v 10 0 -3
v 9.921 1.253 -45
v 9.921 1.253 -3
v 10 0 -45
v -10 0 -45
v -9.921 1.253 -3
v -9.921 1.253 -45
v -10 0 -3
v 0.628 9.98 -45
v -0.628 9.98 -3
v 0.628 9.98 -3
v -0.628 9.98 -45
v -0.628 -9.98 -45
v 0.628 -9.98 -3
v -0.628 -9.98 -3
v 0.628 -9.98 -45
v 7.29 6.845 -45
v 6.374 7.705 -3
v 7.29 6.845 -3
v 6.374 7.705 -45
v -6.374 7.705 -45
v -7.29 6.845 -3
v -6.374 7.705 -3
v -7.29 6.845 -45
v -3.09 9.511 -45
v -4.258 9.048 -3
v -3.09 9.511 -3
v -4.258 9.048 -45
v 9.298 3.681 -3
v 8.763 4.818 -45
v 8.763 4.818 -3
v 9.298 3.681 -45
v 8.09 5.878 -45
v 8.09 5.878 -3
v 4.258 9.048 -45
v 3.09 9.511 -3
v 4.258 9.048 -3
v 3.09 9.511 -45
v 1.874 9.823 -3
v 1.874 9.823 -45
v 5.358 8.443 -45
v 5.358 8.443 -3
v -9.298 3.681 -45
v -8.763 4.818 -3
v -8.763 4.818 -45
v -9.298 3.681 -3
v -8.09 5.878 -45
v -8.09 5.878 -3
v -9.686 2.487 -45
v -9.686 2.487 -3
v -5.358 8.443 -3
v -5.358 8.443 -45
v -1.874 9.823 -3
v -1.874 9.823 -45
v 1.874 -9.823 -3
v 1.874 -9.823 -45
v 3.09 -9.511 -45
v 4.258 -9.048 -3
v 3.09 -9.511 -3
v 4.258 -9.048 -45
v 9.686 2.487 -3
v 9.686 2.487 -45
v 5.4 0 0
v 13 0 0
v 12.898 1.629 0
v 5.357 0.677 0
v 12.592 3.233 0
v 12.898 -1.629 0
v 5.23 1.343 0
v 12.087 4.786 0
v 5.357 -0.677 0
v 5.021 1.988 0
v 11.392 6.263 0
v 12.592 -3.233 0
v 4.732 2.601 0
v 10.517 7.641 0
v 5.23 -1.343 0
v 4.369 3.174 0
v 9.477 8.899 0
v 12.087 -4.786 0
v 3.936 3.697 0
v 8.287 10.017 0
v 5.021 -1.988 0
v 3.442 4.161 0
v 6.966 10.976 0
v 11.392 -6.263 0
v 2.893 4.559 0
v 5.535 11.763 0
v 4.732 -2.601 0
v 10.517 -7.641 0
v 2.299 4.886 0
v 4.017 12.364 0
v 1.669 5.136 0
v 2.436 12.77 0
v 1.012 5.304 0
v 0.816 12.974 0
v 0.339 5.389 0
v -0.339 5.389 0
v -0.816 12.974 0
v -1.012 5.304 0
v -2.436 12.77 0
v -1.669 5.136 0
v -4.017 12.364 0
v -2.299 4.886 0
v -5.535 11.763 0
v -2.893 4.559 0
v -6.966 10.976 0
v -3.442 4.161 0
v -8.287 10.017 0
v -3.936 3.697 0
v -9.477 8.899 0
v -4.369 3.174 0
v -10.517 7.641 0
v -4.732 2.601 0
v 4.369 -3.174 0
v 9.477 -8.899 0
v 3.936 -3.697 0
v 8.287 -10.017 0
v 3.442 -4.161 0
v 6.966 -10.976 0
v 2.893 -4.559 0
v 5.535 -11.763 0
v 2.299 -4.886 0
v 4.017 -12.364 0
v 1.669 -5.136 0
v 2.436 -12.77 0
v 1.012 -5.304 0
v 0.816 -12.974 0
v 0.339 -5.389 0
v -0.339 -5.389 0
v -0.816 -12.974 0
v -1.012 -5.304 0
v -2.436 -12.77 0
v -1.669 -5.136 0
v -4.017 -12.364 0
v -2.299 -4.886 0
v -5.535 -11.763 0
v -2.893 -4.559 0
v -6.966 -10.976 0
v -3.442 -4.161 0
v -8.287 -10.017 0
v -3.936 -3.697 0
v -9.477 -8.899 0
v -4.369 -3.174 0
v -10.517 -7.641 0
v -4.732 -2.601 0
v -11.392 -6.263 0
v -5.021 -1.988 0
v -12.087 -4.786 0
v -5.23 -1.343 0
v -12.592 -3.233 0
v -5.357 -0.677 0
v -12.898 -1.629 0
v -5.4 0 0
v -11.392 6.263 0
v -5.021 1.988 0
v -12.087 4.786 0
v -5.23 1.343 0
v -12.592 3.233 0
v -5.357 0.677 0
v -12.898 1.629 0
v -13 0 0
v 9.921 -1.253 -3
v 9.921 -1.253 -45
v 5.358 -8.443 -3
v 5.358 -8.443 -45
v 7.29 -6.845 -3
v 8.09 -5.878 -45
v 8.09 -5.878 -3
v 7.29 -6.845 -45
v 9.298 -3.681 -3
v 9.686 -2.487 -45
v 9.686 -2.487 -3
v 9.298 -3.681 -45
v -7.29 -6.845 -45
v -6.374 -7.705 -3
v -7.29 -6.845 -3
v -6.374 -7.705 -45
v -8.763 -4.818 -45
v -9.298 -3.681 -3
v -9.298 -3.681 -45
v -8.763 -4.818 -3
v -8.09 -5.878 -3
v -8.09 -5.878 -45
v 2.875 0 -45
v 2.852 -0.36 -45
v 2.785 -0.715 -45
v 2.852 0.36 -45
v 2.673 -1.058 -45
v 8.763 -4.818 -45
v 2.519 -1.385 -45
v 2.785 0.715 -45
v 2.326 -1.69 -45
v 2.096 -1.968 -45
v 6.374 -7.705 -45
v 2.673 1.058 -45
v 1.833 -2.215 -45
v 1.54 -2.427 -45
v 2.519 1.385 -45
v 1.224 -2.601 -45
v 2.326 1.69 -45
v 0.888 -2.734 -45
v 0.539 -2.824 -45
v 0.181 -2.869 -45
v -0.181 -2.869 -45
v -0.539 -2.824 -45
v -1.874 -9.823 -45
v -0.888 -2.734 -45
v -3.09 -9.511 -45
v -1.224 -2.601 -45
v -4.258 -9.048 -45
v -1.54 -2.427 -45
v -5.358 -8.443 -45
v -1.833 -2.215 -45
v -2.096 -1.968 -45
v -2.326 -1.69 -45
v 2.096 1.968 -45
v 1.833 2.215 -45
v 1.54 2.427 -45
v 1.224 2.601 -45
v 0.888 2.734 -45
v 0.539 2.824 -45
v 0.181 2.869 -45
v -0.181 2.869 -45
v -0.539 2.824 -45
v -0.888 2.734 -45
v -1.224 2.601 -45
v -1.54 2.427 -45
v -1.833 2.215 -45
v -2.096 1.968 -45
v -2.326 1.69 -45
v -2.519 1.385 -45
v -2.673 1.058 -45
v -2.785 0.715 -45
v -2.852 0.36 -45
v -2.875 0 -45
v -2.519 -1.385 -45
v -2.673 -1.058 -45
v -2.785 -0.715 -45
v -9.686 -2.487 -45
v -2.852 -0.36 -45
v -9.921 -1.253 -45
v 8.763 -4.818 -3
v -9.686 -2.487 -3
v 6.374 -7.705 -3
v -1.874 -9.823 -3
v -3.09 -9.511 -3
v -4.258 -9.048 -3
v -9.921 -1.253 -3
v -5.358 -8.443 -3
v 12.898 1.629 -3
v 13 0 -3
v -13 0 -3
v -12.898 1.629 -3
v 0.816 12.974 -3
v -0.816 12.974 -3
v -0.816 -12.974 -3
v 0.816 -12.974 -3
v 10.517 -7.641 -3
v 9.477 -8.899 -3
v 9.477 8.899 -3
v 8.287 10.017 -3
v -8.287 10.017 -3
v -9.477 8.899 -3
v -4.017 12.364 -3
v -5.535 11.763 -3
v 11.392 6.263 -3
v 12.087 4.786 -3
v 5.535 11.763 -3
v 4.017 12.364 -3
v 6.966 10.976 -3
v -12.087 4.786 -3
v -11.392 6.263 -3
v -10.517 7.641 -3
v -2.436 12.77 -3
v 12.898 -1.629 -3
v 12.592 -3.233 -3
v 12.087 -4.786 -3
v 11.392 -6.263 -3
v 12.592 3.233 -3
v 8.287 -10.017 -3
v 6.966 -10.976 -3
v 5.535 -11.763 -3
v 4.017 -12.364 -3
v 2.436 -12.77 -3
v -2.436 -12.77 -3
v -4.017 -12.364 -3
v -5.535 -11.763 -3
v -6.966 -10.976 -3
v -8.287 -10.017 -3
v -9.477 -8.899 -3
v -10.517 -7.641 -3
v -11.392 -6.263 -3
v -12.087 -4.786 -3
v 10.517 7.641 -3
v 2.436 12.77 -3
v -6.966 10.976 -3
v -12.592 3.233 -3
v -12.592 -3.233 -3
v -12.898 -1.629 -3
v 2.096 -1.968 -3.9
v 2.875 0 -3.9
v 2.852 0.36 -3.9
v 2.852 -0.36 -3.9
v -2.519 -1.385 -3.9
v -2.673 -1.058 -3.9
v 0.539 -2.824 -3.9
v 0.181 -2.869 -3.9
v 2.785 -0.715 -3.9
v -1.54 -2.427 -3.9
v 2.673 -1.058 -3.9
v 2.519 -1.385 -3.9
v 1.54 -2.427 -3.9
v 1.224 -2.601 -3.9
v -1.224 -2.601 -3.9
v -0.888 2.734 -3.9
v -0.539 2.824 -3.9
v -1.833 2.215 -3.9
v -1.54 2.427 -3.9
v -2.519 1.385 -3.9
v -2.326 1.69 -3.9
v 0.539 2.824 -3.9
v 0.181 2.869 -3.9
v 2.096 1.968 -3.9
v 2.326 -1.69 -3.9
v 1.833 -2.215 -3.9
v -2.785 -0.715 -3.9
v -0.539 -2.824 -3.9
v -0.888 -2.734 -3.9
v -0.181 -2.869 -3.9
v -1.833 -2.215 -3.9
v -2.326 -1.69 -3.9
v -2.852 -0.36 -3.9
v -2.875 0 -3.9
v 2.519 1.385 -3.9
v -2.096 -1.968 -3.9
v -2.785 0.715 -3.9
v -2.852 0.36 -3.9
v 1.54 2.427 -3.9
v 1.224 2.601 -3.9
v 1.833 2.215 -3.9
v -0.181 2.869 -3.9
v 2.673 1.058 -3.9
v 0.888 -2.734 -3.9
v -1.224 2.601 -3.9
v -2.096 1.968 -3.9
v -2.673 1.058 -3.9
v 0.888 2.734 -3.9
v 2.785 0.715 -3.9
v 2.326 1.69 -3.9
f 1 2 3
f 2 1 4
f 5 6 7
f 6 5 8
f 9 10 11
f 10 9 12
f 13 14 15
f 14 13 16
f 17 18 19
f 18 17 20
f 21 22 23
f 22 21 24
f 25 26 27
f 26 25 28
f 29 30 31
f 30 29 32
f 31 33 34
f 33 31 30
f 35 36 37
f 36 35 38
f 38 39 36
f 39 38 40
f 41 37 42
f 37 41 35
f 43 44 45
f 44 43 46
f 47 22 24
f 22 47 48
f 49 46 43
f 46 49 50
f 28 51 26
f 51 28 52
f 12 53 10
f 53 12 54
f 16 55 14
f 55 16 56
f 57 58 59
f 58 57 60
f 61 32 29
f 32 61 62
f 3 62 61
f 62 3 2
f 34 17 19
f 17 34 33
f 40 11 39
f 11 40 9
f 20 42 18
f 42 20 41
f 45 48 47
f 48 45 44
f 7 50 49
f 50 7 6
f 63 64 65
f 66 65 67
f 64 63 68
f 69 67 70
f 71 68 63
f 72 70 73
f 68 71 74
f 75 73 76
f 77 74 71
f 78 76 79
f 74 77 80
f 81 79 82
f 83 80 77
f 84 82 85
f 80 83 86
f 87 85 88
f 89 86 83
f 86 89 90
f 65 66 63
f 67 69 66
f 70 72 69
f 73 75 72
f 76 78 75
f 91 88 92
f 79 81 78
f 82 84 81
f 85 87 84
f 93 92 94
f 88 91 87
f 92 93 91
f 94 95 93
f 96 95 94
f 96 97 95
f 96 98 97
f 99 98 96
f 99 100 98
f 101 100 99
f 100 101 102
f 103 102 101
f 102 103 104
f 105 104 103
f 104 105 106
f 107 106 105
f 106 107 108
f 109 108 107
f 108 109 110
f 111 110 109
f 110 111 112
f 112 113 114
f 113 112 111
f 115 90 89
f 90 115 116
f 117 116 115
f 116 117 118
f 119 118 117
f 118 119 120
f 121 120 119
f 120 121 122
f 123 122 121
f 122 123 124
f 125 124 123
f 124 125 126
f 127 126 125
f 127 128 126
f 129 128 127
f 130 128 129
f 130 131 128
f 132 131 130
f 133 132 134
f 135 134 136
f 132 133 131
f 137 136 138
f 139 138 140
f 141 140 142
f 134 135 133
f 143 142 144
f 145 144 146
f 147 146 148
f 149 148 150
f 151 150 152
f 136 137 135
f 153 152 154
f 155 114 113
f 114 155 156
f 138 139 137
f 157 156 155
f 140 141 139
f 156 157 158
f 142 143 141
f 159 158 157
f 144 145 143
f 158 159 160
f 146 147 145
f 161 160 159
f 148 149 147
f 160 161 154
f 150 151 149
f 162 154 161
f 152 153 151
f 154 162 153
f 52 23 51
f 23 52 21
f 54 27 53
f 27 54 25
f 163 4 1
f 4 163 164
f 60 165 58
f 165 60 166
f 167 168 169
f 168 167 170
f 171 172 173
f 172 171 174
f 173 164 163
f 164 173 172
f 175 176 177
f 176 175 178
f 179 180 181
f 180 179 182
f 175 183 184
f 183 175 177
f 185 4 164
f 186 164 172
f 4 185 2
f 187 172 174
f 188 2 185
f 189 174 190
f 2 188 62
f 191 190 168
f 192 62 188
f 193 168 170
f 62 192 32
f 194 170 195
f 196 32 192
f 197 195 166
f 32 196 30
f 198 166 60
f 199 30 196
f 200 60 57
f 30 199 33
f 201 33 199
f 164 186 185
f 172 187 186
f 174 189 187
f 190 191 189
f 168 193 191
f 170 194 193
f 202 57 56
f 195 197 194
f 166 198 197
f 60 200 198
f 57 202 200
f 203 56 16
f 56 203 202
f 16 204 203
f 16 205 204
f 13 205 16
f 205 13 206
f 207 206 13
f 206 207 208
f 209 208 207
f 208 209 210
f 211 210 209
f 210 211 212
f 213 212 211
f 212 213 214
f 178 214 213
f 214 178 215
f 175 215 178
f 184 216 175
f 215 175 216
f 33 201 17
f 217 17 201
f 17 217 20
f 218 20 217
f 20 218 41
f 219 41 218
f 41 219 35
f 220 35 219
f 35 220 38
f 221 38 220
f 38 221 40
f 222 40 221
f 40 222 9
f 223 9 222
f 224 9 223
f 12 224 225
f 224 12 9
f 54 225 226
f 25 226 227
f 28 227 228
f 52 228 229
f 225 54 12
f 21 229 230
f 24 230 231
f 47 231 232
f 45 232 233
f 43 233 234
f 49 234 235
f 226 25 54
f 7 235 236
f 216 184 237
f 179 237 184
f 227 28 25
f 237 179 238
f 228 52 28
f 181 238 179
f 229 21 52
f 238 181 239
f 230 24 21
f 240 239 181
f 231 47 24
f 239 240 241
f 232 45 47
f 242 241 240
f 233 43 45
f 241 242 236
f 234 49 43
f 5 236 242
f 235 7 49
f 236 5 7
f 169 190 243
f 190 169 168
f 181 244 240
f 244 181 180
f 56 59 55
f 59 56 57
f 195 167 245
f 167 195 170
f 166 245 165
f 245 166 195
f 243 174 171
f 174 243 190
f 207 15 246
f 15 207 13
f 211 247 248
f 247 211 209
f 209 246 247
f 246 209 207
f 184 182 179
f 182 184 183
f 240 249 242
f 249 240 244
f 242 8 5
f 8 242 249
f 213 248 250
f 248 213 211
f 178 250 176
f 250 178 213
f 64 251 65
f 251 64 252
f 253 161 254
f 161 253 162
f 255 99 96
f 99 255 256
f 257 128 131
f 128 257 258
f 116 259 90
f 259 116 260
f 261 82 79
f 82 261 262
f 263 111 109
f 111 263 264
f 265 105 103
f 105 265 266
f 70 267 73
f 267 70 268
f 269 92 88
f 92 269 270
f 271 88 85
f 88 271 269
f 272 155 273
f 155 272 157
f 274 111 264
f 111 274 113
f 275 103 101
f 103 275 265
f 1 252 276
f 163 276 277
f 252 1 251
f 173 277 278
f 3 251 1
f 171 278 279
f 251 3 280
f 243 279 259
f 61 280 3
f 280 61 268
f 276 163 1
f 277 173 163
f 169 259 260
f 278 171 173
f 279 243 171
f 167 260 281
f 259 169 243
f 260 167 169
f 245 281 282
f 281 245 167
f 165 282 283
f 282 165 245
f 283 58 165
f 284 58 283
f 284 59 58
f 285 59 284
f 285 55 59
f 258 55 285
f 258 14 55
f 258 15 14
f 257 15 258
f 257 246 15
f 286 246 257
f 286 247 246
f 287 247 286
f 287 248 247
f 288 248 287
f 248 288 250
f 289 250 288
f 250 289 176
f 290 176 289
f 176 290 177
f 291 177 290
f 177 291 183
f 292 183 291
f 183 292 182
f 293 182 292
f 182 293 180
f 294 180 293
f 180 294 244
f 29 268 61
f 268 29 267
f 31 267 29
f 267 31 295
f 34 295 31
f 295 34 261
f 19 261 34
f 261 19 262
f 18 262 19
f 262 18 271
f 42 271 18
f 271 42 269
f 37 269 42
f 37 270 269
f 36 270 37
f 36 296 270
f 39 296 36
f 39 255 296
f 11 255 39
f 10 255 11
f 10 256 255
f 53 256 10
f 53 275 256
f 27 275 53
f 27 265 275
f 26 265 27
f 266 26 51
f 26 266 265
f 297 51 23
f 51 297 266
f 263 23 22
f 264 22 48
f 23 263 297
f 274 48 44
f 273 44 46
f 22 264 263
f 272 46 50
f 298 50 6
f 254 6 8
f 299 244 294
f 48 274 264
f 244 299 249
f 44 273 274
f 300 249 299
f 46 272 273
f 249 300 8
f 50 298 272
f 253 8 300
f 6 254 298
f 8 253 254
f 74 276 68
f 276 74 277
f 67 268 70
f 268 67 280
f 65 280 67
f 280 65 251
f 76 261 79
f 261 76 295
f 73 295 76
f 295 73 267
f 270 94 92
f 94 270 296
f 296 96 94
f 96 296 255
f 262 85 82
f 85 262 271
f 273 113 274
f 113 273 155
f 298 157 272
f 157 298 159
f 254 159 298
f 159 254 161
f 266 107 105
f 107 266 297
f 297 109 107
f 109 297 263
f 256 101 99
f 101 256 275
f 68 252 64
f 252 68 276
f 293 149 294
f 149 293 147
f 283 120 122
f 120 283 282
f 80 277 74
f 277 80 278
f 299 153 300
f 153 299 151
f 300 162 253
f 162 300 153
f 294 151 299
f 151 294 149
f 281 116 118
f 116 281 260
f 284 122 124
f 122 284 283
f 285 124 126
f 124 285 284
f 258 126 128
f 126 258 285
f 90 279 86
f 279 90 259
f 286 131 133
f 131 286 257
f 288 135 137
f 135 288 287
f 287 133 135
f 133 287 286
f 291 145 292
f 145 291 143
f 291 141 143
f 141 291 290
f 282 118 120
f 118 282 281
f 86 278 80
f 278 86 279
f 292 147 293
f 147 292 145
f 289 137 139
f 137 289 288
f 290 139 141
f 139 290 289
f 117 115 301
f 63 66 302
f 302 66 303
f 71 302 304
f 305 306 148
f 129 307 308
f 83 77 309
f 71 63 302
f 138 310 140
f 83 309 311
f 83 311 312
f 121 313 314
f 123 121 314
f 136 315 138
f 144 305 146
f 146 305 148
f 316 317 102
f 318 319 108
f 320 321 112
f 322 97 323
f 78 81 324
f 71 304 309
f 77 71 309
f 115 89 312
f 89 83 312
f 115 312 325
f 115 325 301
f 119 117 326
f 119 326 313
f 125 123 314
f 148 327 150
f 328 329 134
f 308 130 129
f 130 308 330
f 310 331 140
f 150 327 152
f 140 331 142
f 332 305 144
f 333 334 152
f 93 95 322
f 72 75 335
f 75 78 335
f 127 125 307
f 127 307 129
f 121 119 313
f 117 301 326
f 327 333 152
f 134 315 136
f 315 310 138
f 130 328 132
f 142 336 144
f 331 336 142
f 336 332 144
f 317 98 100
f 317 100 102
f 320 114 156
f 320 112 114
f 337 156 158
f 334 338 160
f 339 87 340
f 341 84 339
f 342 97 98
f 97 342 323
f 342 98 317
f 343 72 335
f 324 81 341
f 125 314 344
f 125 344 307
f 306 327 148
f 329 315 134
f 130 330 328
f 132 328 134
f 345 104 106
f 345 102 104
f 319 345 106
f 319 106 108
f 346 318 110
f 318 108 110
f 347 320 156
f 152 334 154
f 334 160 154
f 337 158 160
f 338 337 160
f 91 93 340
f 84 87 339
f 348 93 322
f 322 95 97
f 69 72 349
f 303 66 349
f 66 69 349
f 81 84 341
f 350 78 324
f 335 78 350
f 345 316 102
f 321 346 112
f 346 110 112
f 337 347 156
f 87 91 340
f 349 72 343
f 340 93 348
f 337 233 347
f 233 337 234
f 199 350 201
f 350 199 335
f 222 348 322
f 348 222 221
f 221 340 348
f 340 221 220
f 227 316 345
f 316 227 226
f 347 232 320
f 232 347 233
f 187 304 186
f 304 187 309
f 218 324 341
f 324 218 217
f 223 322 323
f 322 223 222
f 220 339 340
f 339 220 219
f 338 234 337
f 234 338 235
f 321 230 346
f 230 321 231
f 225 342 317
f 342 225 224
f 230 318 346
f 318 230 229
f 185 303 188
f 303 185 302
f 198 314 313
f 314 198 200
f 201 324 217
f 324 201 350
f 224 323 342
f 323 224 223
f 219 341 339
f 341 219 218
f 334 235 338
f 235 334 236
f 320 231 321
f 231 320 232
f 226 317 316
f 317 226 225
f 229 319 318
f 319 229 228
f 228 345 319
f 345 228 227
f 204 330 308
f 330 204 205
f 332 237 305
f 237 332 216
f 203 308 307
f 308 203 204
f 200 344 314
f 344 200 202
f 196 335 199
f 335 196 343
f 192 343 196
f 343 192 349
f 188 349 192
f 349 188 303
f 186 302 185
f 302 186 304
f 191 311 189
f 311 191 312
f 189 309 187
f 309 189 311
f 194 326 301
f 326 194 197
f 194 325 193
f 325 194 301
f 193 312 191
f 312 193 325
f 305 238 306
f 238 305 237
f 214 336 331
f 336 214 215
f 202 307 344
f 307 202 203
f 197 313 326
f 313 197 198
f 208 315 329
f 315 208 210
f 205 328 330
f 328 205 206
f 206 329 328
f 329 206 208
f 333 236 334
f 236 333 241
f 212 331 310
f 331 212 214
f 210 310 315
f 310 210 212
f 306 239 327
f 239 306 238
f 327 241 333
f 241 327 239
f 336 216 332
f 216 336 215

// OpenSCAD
$fn = 50;


difference() {
	union() {
		translate(v = [0, 0, -45.0000000000]) {
			cylinder(h = 45, r = 10.0000000000);
		}
		translate(v = [0, 0, -3.0000000000]) {
			cylinder(h = 3, r = 13.0000000000);
		}
	}
	union() {
		translate(v = [0, 0, 0]) {
			rotate(a = [0, 0, 0]) {
				difference() {
					union() {
						#translate(v = [0, 0, -45.0000000000]) {
							cylinder(h = 45, r = 2.6000000000);
						}
						#translate(v = [0, 0, -3.9000000000]) {
							cylinder(h = 3.9000000000, r1 = 2.8750000000, r2 = 5.4000000000);
						}
						#translate(v = [0, 0, -45.0000000000]) {
							cylinder(h = 45, r = 2.8750000000);
						}
						#translate(v = [0, 0, -45.0000000000]) {
							cylinder(h = 45, r = 2.6000000000);
						}
					}
					union();
				}
			}
		}
	}
}
